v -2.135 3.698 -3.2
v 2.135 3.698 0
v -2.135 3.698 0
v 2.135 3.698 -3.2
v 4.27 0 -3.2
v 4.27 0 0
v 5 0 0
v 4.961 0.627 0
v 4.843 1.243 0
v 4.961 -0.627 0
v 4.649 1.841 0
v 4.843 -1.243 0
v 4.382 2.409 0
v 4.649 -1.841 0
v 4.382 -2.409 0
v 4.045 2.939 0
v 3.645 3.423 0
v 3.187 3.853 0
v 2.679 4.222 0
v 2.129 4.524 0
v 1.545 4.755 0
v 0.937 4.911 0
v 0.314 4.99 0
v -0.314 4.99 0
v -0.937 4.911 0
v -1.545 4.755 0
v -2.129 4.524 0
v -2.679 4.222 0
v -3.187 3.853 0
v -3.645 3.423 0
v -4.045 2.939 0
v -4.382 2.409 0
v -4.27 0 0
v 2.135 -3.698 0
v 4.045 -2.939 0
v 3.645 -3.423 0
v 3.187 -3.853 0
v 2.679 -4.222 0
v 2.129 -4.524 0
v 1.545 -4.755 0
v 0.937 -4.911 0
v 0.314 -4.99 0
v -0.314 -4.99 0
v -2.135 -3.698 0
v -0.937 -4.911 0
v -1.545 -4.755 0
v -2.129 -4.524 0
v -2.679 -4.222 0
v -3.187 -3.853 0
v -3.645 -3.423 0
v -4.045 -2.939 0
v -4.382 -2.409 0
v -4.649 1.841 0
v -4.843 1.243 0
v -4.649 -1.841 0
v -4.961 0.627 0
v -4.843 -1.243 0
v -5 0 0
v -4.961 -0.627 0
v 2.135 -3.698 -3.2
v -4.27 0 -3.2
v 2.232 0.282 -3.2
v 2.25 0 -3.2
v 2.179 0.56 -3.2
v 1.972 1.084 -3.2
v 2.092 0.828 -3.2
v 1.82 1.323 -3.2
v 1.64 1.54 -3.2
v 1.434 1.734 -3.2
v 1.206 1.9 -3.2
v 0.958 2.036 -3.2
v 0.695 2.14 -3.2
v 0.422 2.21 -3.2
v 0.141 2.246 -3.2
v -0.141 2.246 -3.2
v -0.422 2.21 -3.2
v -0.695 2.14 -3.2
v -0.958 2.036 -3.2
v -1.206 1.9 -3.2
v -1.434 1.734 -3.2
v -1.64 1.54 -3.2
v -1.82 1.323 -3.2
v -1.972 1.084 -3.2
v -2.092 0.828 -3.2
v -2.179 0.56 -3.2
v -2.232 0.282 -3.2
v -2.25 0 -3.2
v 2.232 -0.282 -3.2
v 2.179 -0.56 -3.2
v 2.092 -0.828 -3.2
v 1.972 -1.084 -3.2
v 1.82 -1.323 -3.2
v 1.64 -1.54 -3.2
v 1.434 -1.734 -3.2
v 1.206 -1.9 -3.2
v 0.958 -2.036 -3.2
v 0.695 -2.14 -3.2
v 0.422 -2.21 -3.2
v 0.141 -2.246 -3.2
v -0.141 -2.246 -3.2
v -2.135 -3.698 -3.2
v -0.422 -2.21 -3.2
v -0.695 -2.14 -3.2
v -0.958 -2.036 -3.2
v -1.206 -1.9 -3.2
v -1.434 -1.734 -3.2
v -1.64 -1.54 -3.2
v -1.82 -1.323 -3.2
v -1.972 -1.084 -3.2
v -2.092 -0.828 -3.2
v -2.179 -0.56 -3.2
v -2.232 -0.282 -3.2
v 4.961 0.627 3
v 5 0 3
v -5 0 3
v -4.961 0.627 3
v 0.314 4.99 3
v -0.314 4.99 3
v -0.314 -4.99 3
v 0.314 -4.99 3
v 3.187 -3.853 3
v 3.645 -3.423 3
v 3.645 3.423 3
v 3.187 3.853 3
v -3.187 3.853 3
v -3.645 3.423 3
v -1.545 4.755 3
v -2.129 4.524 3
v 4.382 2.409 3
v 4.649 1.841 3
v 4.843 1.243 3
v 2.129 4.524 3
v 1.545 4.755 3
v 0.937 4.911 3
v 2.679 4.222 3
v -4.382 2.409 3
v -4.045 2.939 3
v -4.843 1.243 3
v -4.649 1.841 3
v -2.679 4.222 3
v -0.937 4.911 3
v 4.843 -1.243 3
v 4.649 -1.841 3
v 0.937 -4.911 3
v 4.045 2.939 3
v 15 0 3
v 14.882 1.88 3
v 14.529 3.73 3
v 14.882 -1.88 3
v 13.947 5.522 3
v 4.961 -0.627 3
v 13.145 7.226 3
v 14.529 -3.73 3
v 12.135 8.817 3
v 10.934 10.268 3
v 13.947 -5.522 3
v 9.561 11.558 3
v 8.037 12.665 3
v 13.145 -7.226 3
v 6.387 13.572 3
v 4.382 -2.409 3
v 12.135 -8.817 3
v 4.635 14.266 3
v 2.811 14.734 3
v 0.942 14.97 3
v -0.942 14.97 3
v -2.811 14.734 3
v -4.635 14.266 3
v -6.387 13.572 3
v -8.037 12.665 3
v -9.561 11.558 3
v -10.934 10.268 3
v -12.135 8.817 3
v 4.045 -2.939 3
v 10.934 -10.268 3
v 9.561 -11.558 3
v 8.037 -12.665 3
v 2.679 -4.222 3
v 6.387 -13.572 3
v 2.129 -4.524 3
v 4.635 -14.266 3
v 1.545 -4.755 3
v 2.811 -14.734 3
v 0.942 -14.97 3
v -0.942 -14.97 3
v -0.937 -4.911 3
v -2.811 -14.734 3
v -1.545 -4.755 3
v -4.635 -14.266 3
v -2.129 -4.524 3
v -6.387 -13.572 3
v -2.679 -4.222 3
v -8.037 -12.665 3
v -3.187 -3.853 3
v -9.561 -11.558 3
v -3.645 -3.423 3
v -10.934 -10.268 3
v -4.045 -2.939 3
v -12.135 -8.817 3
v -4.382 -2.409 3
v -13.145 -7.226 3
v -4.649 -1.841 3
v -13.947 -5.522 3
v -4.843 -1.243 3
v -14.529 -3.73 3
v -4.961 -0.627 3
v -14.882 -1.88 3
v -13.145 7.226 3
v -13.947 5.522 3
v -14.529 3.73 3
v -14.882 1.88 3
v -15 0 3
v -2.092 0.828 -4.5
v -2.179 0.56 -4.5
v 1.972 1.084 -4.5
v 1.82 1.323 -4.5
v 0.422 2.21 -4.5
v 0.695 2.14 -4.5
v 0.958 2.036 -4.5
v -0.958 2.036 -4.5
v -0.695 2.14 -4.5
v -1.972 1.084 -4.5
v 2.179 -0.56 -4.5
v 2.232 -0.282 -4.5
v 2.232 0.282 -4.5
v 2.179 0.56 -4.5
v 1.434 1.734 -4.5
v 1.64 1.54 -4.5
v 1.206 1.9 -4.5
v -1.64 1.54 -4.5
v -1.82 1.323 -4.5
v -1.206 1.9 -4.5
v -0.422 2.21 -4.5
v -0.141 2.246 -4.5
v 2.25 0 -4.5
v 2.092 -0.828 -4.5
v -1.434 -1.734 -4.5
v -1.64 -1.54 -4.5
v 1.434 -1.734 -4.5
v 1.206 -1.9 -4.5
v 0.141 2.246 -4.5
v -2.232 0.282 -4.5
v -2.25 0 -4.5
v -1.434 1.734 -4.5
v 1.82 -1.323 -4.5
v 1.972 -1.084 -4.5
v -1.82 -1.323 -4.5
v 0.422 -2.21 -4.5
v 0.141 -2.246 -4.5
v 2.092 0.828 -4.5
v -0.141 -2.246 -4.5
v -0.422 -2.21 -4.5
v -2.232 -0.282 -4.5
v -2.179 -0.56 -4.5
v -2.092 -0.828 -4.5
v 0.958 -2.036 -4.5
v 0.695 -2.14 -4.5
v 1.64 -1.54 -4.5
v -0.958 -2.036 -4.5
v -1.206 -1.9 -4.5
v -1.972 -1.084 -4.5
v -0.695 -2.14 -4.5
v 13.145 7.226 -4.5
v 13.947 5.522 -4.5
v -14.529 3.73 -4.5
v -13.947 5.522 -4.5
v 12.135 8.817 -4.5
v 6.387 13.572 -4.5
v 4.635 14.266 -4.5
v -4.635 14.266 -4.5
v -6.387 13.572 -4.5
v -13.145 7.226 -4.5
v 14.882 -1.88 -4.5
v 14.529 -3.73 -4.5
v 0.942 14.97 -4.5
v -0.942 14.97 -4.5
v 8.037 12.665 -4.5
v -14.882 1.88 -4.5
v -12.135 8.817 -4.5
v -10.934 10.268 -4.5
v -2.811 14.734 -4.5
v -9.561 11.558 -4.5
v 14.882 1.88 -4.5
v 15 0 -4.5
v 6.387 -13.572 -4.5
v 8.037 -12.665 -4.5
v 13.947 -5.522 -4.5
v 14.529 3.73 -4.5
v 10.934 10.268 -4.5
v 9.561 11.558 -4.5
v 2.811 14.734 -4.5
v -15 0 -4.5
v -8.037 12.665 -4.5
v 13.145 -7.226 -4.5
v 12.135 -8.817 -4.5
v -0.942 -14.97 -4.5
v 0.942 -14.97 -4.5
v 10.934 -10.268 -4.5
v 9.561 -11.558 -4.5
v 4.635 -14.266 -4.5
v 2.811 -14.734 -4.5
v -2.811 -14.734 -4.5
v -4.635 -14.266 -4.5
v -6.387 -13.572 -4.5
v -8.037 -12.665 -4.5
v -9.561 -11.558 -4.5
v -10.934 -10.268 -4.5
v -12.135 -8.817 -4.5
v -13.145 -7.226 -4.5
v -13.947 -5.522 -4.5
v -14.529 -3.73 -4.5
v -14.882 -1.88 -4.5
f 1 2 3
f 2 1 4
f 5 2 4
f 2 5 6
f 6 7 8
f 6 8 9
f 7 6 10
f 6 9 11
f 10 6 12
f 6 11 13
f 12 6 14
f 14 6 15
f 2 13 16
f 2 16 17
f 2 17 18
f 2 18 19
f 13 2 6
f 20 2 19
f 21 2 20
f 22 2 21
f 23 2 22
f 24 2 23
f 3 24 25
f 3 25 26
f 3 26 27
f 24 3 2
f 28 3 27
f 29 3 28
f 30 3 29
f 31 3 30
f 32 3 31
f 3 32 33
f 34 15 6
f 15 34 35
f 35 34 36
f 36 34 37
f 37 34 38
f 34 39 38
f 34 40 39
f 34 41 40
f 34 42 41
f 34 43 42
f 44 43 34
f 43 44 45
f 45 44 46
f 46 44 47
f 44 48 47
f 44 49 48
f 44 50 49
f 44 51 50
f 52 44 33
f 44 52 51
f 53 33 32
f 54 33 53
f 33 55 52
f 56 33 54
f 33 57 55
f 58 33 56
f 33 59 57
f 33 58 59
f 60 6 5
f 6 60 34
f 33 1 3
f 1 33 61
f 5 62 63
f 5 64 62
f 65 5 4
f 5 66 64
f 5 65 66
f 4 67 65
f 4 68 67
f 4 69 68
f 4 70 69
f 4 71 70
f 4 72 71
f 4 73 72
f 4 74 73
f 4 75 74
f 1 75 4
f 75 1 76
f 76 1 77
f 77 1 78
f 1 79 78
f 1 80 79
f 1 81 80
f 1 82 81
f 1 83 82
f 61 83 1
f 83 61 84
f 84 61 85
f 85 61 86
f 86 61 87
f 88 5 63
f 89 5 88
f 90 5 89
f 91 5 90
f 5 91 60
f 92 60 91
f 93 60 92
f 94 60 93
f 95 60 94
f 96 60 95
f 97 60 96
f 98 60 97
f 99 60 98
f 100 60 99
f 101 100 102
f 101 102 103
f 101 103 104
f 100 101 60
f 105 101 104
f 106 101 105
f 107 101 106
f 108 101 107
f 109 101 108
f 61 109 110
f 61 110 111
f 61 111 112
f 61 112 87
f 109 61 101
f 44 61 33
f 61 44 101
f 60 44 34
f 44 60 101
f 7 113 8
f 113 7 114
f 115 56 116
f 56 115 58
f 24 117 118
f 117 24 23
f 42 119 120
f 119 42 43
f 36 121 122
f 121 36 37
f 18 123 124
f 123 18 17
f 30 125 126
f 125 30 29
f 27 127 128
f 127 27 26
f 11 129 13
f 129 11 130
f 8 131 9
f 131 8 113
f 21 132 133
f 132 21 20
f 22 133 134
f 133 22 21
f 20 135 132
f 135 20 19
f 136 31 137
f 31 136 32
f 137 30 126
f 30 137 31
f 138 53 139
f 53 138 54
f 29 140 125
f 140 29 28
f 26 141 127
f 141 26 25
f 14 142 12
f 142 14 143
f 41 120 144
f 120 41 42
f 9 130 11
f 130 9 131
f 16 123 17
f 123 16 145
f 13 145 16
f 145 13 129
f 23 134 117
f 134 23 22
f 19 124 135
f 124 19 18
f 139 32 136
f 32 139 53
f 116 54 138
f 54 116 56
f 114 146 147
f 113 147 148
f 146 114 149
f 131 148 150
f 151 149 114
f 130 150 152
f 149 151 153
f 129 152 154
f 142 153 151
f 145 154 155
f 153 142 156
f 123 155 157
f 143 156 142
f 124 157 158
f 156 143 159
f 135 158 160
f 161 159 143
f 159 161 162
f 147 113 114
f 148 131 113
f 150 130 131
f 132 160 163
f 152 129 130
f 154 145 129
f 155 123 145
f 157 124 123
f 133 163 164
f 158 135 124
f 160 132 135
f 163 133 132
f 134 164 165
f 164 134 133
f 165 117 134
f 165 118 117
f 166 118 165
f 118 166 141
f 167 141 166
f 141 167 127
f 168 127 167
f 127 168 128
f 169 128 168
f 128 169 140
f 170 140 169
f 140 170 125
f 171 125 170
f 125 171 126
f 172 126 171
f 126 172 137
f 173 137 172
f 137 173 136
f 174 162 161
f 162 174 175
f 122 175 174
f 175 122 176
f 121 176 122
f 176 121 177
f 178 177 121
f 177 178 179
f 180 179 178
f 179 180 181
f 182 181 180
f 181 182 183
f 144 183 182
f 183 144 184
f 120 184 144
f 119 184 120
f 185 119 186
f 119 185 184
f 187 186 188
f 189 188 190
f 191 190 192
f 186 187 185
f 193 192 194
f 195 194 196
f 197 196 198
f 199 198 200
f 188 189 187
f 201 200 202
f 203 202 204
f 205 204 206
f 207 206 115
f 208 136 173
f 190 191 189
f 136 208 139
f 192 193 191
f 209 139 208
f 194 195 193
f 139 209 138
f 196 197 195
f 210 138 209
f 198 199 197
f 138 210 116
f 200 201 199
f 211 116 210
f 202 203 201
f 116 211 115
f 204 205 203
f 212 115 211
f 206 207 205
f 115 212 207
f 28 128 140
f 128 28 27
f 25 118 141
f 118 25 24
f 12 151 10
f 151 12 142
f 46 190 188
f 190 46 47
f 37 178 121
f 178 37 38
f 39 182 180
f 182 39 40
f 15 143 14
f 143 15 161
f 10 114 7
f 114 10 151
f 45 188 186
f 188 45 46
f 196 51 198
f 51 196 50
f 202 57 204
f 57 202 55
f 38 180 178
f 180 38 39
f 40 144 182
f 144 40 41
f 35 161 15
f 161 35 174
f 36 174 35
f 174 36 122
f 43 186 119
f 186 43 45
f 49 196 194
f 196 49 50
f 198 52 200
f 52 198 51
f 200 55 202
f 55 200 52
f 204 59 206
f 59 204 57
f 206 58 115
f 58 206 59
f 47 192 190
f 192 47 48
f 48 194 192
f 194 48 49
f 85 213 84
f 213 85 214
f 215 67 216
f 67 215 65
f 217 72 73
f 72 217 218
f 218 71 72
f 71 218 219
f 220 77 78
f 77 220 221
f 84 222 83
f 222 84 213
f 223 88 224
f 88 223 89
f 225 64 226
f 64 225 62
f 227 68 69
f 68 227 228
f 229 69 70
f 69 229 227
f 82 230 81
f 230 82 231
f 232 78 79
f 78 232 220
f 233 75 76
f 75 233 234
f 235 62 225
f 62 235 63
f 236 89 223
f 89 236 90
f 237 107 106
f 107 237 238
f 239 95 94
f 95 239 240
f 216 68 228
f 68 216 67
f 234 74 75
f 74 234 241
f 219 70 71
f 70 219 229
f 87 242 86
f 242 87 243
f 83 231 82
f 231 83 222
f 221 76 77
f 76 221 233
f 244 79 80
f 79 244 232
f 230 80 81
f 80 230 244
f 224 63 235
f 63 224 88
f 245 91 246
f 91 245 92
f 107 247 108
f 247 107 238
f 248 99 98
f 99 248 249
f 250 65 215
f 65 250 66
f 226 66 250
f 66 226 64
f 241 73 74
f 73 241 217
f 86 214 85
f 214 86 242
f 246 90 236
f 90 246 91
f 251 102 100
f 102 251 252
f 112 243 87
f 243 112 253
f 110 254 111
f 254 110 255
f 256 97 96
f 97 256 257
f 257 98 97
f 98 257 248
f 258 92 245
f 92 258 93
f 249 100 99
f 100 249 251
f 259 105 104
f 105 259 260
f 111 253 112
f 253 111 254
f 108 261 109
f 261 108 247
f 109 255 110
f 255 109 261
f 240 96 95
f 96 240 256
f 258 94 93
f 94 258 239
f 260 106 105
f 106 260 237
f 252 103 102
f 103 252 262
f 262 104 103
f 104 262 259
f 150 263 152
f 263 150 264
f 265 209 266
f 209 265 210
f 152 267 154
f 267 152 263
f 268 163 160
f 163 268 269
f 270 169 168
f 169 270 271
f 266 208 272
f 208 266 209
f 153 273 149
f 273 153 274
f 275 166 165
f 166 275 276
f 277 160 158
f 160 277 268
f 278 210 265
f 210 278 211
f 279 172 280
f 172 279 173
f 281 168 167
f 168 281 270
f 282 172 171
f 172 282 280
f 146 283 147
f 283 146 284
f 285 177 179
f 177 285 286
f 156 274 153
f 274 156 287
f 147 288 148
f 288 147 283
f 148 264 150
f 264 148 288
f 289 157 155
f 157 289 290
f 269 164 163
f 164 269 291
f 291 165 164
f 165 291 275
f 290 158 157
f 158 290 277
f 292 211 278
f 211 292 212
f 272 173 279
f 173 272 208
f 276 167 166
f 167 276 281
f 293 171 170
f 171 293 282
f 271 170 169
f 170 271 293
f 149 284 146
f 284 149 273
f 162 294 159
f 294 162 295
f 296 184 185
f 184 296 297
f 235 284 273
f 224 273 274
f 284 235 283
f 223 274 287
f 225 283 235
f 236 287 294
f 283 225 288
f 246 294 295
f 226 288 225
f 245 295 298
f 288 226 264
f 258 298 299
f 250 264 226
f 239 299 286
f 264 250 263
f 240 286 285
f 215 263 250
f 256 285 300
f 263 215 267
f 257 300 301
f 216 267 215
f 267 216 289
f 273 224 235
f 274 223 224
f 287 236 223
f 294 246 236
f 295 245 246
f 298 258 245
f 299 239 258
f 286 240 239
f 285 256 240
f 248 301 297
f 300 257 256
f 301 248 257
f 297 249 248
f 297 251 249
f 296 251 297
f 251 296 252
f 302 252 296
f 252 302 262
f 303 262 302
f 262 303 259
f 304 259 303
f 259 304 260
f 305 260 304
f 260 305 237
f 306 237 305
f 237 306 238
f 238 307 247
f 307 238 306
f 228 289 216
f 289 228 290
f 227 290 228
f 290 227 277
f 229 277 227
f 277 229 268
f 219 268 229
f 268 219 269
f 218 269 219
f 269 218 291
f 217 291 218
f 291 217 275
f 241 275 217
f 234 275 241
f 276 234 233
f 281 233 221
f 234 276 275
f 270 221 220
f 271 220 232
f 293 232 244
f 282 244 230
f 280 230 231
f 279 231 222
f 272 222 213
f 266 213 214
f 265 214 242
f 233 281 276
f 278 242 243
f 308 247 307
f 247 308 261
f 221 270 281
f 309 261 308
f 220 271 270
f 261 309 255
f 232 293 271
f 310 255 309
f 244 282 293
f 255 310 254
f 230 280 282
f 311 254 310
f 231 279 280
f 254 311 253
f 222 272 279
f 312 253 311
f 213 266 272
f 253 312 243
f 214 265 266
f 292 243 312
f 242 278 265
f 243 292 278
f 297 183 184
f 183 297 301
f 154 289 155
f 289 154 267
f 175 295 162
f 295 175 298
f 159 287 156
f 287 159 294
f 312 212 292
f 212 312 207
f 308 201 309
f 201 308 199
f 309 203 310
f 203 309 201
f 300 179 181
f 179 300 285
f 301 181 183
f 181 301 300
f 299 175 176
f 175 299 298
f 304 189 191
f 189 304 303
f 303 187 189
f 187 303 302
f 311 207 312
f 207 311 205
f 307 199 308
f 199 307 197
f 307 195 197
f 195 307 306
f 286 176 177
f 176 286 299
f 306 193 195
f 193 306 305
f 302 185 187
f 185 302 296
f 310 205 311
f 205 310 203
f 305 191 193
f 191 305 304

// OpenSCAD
$fn = 50;

difference() {
	union() {
		translate(v = [0, 0, -4.5]) {
			cylinder(h = 7.5, r = 15.0);
		}
	}
	union() {
		translate(v = [0, 0, 0]) {
			rotate(a = [0, 0, 0]) {
				difference() {
					union() {
						translate(v = [0, 0, -3.2]) {
							linear_extrude(height = 3.2) {
								polygon(points = [[4.2698, 0.0], [2.1349000000000005, 3.697755269078796], [-2.134899999999999, 3.6977552690787965], [-4.2698, 5.228996902999369e-16], [-2.134900000000002, -3.6977552690787956], [2.1348999999999974, -3.697755269078798]]);
							}
						}
					}
					union();
				}
			}
		}
		#cylinder(h = 3, r = 5.0);
		#translate(v = [0, 0, -100.0]) {
			cylinder(h = 200, r = 2.25);
		}
	}
}
